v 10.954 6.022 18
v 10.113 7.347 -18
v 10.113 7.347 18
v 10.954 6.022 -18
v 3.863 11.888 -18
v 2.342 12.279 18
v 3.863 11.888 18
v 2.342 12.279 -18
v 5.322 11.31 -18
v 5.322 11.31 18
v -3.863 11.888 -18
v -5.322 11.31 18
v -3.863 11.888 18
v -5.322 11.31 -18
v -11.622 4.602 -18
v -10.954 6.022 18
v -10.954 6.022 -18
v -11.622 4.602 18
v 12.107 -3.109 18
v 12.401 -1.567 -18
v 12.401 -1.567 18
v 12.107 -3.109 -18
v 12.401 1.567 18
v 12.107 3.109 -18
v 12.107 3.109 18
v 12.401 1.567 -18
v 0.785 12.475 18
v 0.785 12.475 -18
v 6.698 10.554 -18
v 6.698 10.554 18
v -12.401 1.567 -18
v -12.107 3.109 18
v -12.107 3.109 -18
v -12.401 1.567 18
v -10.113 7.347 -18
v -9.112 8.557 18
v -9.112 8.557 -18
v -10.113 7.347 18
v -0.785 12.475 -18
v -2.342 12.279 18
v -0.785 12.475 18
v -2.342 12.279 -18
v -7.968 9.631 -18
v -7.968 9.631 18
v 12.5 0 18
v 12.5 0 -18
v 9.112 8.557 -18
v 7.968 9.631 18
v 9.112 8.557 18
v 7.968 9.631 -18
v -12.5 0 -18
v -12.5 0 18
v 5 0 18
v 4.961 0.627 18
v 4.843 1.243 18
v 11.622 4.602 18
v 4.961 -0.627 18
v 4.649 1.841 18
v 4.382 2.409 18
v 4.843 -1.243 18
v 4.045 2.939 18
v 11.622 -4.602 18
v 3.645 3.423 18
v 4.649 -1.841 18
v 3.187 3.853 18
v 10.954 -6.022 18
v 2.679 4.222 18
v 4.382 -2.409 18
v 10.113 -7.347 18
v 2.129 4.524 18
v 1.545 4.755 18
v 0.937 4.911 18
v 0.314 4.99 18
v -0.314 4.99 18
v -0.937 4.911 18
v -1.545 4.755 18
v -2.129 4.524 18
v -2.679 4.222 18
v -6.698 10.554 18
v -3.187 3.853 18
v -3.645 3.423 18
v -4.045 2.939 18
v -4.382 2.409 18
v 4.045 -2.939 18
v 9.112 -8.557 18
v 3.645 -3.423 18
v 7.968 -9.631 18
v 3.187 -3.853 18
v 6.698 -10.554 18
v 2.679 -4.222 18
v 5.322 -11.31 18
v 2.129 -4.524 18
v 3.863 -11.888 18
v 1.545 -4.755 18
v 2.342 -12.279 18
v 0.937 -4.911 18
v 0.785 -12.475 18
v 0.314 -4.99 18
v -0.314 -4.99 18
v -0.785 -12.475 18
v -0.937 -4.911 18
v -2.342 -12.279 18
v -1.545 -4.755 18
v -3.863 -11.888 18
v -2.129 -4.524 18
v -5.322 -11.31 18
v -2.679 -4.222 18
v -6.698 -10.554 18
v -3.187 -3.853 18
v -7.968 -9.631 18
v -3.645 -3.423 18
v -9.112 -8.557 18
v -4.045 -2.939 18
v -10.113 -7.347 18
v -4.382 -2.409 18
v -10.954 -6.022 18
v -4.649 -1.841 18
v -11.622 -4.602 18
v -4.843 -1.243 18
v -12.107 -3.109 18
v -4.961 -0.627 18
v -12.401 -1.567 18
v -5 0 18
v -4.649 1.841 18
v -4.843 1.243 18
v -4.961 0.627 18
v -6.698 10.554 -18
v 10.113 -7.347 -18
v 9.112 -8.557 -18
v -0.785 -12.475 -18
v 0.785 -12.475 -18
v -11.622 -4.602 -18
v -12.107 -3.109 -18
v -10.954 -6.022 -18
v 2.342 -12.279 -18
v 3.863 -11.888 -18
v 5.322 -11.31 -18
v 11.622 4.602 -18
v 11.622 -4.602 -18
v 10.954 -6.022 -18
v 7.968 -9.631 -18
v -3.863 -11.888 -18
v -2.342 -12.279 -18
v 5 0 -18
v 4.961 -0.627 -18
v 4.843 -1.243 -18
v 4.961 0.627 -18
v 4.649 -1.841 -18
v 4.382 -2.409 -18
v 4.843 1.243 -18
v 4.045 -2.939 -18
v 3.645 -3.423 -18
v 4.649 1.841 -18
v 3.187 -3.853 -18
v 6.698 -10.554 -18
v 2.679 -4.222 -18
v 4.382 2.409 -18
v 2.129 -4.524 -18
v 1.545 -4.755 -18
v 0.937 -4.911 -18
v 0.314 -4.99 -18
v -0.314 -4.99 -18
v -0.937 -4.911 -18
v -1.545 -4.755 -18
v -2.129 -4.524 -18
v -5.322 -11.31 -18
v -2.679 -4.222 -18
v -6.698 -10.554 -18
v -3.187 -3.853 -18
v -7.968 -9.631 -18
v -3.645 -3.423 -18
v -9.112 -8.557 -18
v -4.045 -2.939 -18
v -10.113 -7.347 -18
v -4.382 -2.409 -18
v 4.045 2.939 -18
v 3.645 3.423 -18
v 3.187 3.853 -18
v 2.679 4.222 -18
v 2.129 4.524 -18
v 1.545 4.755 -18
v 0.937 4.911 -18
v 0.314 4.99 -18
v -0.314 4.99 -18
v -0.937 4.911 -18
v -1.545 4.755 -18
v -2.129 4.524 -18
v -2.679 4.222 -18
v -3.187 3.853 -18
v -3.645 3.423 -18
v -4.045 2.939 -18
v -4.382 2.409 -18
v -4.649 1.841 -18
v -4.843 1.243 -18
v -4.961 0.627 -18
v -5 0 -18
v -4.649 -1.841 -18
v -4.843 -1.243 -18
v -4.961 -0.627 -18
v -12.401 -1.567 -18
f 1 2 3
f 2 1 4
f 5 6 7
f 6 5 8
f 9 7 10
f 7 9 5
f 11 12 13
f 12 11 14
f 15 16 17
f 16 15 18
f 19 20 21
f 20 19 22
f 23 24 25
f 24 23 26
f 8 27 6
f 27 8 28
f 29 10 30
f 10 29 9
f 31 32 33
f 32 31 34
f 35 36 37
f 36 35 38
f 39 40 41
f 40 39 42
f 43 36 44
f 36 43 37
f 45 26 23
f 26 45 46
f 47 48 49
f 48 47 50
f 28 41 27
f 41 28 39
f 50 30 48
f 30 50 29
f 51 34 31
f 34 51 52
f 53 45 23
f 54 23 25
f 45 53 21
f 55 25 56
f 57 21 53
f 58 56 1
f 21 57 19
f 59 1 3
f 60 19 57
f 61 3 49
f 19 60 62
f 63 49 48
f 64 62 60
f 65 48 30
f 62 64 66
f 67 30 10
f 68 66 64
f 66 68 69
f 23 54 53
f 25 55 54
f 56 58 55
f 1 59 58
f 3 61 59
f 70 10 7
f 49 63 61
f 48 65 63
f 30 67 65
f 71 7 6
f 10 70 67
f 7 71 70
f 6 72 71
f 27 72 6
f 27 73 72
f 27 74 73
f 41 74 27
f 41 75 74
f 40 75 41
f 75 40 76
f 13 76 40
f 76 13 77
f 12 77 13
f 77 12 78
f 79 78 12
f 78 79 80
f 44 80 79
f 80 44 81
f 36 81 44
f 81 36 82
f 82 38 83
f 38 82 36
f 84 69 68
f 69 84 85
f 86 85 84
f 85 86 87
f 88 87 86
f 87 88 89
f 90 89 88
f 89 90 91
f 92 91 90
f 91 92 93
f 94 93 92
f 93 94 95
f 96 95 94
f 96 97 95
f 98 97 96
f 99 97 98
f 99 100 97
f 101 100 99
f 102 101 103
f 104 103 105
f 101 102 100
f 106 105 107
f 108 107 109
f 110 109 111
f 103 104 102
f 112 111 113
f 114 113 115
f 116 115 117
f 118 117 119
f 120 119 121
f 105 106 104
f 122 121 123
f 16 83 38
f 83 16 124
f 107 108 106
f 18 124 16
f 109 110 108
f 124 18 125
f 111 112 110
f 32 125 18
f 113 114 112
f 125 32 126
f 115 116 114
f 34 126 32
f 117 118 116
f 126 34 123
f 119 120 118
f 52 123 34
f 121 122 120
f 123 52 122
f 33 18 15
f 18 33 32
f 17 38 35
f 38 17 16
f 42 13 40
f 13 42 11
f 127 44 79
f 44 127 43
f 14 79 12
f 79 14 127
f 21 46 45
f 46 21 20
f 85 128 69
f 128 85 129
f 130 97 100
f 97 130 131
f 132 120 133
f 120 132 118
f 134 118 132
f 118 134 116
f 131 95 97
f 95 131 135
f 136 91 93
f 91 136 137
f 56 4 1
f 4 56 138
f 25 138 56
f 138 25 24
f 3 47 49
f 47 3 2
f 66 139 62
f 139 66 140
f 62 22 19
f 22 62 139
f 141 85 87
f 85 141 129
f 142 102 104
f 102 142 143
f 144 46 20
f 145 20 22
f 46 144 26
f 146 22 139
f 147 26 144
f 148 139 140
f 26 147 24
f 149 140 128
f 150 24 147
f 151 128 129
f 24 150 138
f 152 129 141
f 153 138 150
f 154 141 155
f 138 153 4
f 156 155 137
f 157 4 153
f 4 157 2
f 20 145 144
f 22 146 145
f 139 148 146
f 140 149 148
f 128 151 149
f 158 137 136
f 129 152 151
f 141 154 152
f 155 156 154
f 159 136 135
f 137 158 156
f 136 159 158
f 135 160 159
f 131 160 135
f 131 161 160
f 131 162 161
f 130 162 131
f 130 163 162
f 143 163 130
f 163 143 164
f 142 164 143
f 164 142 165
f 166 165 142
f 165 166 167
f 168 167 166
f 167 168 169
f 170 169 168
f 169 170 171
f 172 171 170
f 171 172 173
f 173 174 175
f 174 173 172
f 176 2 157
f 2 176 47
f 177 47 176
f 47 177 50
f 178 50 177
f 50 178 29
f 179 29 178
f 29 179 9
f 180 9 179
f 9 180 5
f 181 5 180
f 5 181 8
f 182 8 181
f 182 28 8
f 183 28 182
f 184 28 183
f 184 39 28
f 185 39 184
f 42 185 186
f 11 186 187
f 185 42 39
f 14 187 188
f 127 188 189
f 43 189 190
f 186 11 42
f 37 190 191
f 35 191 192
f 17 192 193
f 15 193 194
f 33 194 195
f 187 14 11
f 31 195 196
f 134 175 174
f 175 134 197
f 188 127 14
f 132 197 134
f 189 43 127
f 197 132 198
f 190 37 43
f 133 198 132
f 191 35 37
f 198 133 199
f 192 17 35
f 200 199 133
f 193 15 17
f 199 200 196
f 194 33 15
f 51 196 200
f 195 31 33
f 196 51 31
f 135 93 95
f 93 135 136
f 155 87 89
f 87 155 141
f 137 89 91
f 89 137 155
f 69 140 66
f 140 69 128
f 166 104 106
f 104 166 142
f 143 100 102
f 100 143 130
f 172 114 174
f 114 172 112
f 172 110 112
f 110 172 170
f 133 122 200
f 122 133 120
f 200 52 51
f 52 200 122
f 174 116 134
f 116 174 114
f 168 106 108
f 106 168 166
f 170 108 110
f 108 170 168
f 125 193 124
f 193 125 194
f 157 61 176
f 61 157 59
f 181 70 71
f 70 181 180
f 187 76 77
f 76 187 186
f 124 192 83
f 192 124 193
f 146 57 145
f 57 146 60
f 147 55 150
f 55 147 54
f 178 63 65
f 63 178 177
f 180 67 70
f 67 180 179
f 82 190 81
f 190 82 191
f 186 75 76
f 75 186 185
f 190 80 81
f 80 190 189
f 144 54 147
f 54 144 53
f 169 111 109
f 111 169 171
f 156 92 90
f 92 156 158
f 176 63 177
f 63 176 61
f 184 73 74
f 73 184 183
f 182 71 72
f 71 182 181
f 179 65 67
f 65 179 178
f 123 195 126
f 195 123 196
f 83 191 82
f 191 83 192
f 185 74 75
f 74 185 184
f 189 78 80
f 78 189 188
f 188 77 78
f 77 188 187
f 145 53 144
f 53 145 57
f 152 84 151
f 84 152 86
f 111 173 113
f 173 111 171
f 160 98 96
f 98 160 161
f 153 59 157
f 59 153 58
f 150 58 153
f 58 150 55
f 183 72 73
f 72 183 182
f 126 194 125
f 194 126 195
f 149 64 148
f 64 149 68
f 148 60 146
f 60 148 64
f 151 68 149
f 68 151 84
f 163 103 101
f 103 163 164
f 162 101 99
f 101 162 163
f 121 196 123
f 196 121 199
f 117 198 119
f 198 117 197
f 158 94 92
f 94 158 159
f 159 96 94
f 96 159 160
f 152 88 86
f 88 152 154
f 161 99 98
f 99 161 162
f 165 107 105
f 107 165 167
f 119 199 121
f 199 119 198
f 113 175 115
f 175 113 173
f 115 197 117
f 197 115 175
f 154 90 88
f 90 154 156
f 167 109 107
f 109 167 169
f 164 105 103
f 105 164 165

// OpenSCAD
$fn = 50;


difference() {
	union() {
		translate(v = [0, 0, -18.0000000000]) {
			cylinder(h = 36, r = 12.5000000000);
		}
	}
	union() {
		translate(v = [0, 0, -100.0000000000]) {
			cylinder(h = 200, r = 5);
		}
	}
}
